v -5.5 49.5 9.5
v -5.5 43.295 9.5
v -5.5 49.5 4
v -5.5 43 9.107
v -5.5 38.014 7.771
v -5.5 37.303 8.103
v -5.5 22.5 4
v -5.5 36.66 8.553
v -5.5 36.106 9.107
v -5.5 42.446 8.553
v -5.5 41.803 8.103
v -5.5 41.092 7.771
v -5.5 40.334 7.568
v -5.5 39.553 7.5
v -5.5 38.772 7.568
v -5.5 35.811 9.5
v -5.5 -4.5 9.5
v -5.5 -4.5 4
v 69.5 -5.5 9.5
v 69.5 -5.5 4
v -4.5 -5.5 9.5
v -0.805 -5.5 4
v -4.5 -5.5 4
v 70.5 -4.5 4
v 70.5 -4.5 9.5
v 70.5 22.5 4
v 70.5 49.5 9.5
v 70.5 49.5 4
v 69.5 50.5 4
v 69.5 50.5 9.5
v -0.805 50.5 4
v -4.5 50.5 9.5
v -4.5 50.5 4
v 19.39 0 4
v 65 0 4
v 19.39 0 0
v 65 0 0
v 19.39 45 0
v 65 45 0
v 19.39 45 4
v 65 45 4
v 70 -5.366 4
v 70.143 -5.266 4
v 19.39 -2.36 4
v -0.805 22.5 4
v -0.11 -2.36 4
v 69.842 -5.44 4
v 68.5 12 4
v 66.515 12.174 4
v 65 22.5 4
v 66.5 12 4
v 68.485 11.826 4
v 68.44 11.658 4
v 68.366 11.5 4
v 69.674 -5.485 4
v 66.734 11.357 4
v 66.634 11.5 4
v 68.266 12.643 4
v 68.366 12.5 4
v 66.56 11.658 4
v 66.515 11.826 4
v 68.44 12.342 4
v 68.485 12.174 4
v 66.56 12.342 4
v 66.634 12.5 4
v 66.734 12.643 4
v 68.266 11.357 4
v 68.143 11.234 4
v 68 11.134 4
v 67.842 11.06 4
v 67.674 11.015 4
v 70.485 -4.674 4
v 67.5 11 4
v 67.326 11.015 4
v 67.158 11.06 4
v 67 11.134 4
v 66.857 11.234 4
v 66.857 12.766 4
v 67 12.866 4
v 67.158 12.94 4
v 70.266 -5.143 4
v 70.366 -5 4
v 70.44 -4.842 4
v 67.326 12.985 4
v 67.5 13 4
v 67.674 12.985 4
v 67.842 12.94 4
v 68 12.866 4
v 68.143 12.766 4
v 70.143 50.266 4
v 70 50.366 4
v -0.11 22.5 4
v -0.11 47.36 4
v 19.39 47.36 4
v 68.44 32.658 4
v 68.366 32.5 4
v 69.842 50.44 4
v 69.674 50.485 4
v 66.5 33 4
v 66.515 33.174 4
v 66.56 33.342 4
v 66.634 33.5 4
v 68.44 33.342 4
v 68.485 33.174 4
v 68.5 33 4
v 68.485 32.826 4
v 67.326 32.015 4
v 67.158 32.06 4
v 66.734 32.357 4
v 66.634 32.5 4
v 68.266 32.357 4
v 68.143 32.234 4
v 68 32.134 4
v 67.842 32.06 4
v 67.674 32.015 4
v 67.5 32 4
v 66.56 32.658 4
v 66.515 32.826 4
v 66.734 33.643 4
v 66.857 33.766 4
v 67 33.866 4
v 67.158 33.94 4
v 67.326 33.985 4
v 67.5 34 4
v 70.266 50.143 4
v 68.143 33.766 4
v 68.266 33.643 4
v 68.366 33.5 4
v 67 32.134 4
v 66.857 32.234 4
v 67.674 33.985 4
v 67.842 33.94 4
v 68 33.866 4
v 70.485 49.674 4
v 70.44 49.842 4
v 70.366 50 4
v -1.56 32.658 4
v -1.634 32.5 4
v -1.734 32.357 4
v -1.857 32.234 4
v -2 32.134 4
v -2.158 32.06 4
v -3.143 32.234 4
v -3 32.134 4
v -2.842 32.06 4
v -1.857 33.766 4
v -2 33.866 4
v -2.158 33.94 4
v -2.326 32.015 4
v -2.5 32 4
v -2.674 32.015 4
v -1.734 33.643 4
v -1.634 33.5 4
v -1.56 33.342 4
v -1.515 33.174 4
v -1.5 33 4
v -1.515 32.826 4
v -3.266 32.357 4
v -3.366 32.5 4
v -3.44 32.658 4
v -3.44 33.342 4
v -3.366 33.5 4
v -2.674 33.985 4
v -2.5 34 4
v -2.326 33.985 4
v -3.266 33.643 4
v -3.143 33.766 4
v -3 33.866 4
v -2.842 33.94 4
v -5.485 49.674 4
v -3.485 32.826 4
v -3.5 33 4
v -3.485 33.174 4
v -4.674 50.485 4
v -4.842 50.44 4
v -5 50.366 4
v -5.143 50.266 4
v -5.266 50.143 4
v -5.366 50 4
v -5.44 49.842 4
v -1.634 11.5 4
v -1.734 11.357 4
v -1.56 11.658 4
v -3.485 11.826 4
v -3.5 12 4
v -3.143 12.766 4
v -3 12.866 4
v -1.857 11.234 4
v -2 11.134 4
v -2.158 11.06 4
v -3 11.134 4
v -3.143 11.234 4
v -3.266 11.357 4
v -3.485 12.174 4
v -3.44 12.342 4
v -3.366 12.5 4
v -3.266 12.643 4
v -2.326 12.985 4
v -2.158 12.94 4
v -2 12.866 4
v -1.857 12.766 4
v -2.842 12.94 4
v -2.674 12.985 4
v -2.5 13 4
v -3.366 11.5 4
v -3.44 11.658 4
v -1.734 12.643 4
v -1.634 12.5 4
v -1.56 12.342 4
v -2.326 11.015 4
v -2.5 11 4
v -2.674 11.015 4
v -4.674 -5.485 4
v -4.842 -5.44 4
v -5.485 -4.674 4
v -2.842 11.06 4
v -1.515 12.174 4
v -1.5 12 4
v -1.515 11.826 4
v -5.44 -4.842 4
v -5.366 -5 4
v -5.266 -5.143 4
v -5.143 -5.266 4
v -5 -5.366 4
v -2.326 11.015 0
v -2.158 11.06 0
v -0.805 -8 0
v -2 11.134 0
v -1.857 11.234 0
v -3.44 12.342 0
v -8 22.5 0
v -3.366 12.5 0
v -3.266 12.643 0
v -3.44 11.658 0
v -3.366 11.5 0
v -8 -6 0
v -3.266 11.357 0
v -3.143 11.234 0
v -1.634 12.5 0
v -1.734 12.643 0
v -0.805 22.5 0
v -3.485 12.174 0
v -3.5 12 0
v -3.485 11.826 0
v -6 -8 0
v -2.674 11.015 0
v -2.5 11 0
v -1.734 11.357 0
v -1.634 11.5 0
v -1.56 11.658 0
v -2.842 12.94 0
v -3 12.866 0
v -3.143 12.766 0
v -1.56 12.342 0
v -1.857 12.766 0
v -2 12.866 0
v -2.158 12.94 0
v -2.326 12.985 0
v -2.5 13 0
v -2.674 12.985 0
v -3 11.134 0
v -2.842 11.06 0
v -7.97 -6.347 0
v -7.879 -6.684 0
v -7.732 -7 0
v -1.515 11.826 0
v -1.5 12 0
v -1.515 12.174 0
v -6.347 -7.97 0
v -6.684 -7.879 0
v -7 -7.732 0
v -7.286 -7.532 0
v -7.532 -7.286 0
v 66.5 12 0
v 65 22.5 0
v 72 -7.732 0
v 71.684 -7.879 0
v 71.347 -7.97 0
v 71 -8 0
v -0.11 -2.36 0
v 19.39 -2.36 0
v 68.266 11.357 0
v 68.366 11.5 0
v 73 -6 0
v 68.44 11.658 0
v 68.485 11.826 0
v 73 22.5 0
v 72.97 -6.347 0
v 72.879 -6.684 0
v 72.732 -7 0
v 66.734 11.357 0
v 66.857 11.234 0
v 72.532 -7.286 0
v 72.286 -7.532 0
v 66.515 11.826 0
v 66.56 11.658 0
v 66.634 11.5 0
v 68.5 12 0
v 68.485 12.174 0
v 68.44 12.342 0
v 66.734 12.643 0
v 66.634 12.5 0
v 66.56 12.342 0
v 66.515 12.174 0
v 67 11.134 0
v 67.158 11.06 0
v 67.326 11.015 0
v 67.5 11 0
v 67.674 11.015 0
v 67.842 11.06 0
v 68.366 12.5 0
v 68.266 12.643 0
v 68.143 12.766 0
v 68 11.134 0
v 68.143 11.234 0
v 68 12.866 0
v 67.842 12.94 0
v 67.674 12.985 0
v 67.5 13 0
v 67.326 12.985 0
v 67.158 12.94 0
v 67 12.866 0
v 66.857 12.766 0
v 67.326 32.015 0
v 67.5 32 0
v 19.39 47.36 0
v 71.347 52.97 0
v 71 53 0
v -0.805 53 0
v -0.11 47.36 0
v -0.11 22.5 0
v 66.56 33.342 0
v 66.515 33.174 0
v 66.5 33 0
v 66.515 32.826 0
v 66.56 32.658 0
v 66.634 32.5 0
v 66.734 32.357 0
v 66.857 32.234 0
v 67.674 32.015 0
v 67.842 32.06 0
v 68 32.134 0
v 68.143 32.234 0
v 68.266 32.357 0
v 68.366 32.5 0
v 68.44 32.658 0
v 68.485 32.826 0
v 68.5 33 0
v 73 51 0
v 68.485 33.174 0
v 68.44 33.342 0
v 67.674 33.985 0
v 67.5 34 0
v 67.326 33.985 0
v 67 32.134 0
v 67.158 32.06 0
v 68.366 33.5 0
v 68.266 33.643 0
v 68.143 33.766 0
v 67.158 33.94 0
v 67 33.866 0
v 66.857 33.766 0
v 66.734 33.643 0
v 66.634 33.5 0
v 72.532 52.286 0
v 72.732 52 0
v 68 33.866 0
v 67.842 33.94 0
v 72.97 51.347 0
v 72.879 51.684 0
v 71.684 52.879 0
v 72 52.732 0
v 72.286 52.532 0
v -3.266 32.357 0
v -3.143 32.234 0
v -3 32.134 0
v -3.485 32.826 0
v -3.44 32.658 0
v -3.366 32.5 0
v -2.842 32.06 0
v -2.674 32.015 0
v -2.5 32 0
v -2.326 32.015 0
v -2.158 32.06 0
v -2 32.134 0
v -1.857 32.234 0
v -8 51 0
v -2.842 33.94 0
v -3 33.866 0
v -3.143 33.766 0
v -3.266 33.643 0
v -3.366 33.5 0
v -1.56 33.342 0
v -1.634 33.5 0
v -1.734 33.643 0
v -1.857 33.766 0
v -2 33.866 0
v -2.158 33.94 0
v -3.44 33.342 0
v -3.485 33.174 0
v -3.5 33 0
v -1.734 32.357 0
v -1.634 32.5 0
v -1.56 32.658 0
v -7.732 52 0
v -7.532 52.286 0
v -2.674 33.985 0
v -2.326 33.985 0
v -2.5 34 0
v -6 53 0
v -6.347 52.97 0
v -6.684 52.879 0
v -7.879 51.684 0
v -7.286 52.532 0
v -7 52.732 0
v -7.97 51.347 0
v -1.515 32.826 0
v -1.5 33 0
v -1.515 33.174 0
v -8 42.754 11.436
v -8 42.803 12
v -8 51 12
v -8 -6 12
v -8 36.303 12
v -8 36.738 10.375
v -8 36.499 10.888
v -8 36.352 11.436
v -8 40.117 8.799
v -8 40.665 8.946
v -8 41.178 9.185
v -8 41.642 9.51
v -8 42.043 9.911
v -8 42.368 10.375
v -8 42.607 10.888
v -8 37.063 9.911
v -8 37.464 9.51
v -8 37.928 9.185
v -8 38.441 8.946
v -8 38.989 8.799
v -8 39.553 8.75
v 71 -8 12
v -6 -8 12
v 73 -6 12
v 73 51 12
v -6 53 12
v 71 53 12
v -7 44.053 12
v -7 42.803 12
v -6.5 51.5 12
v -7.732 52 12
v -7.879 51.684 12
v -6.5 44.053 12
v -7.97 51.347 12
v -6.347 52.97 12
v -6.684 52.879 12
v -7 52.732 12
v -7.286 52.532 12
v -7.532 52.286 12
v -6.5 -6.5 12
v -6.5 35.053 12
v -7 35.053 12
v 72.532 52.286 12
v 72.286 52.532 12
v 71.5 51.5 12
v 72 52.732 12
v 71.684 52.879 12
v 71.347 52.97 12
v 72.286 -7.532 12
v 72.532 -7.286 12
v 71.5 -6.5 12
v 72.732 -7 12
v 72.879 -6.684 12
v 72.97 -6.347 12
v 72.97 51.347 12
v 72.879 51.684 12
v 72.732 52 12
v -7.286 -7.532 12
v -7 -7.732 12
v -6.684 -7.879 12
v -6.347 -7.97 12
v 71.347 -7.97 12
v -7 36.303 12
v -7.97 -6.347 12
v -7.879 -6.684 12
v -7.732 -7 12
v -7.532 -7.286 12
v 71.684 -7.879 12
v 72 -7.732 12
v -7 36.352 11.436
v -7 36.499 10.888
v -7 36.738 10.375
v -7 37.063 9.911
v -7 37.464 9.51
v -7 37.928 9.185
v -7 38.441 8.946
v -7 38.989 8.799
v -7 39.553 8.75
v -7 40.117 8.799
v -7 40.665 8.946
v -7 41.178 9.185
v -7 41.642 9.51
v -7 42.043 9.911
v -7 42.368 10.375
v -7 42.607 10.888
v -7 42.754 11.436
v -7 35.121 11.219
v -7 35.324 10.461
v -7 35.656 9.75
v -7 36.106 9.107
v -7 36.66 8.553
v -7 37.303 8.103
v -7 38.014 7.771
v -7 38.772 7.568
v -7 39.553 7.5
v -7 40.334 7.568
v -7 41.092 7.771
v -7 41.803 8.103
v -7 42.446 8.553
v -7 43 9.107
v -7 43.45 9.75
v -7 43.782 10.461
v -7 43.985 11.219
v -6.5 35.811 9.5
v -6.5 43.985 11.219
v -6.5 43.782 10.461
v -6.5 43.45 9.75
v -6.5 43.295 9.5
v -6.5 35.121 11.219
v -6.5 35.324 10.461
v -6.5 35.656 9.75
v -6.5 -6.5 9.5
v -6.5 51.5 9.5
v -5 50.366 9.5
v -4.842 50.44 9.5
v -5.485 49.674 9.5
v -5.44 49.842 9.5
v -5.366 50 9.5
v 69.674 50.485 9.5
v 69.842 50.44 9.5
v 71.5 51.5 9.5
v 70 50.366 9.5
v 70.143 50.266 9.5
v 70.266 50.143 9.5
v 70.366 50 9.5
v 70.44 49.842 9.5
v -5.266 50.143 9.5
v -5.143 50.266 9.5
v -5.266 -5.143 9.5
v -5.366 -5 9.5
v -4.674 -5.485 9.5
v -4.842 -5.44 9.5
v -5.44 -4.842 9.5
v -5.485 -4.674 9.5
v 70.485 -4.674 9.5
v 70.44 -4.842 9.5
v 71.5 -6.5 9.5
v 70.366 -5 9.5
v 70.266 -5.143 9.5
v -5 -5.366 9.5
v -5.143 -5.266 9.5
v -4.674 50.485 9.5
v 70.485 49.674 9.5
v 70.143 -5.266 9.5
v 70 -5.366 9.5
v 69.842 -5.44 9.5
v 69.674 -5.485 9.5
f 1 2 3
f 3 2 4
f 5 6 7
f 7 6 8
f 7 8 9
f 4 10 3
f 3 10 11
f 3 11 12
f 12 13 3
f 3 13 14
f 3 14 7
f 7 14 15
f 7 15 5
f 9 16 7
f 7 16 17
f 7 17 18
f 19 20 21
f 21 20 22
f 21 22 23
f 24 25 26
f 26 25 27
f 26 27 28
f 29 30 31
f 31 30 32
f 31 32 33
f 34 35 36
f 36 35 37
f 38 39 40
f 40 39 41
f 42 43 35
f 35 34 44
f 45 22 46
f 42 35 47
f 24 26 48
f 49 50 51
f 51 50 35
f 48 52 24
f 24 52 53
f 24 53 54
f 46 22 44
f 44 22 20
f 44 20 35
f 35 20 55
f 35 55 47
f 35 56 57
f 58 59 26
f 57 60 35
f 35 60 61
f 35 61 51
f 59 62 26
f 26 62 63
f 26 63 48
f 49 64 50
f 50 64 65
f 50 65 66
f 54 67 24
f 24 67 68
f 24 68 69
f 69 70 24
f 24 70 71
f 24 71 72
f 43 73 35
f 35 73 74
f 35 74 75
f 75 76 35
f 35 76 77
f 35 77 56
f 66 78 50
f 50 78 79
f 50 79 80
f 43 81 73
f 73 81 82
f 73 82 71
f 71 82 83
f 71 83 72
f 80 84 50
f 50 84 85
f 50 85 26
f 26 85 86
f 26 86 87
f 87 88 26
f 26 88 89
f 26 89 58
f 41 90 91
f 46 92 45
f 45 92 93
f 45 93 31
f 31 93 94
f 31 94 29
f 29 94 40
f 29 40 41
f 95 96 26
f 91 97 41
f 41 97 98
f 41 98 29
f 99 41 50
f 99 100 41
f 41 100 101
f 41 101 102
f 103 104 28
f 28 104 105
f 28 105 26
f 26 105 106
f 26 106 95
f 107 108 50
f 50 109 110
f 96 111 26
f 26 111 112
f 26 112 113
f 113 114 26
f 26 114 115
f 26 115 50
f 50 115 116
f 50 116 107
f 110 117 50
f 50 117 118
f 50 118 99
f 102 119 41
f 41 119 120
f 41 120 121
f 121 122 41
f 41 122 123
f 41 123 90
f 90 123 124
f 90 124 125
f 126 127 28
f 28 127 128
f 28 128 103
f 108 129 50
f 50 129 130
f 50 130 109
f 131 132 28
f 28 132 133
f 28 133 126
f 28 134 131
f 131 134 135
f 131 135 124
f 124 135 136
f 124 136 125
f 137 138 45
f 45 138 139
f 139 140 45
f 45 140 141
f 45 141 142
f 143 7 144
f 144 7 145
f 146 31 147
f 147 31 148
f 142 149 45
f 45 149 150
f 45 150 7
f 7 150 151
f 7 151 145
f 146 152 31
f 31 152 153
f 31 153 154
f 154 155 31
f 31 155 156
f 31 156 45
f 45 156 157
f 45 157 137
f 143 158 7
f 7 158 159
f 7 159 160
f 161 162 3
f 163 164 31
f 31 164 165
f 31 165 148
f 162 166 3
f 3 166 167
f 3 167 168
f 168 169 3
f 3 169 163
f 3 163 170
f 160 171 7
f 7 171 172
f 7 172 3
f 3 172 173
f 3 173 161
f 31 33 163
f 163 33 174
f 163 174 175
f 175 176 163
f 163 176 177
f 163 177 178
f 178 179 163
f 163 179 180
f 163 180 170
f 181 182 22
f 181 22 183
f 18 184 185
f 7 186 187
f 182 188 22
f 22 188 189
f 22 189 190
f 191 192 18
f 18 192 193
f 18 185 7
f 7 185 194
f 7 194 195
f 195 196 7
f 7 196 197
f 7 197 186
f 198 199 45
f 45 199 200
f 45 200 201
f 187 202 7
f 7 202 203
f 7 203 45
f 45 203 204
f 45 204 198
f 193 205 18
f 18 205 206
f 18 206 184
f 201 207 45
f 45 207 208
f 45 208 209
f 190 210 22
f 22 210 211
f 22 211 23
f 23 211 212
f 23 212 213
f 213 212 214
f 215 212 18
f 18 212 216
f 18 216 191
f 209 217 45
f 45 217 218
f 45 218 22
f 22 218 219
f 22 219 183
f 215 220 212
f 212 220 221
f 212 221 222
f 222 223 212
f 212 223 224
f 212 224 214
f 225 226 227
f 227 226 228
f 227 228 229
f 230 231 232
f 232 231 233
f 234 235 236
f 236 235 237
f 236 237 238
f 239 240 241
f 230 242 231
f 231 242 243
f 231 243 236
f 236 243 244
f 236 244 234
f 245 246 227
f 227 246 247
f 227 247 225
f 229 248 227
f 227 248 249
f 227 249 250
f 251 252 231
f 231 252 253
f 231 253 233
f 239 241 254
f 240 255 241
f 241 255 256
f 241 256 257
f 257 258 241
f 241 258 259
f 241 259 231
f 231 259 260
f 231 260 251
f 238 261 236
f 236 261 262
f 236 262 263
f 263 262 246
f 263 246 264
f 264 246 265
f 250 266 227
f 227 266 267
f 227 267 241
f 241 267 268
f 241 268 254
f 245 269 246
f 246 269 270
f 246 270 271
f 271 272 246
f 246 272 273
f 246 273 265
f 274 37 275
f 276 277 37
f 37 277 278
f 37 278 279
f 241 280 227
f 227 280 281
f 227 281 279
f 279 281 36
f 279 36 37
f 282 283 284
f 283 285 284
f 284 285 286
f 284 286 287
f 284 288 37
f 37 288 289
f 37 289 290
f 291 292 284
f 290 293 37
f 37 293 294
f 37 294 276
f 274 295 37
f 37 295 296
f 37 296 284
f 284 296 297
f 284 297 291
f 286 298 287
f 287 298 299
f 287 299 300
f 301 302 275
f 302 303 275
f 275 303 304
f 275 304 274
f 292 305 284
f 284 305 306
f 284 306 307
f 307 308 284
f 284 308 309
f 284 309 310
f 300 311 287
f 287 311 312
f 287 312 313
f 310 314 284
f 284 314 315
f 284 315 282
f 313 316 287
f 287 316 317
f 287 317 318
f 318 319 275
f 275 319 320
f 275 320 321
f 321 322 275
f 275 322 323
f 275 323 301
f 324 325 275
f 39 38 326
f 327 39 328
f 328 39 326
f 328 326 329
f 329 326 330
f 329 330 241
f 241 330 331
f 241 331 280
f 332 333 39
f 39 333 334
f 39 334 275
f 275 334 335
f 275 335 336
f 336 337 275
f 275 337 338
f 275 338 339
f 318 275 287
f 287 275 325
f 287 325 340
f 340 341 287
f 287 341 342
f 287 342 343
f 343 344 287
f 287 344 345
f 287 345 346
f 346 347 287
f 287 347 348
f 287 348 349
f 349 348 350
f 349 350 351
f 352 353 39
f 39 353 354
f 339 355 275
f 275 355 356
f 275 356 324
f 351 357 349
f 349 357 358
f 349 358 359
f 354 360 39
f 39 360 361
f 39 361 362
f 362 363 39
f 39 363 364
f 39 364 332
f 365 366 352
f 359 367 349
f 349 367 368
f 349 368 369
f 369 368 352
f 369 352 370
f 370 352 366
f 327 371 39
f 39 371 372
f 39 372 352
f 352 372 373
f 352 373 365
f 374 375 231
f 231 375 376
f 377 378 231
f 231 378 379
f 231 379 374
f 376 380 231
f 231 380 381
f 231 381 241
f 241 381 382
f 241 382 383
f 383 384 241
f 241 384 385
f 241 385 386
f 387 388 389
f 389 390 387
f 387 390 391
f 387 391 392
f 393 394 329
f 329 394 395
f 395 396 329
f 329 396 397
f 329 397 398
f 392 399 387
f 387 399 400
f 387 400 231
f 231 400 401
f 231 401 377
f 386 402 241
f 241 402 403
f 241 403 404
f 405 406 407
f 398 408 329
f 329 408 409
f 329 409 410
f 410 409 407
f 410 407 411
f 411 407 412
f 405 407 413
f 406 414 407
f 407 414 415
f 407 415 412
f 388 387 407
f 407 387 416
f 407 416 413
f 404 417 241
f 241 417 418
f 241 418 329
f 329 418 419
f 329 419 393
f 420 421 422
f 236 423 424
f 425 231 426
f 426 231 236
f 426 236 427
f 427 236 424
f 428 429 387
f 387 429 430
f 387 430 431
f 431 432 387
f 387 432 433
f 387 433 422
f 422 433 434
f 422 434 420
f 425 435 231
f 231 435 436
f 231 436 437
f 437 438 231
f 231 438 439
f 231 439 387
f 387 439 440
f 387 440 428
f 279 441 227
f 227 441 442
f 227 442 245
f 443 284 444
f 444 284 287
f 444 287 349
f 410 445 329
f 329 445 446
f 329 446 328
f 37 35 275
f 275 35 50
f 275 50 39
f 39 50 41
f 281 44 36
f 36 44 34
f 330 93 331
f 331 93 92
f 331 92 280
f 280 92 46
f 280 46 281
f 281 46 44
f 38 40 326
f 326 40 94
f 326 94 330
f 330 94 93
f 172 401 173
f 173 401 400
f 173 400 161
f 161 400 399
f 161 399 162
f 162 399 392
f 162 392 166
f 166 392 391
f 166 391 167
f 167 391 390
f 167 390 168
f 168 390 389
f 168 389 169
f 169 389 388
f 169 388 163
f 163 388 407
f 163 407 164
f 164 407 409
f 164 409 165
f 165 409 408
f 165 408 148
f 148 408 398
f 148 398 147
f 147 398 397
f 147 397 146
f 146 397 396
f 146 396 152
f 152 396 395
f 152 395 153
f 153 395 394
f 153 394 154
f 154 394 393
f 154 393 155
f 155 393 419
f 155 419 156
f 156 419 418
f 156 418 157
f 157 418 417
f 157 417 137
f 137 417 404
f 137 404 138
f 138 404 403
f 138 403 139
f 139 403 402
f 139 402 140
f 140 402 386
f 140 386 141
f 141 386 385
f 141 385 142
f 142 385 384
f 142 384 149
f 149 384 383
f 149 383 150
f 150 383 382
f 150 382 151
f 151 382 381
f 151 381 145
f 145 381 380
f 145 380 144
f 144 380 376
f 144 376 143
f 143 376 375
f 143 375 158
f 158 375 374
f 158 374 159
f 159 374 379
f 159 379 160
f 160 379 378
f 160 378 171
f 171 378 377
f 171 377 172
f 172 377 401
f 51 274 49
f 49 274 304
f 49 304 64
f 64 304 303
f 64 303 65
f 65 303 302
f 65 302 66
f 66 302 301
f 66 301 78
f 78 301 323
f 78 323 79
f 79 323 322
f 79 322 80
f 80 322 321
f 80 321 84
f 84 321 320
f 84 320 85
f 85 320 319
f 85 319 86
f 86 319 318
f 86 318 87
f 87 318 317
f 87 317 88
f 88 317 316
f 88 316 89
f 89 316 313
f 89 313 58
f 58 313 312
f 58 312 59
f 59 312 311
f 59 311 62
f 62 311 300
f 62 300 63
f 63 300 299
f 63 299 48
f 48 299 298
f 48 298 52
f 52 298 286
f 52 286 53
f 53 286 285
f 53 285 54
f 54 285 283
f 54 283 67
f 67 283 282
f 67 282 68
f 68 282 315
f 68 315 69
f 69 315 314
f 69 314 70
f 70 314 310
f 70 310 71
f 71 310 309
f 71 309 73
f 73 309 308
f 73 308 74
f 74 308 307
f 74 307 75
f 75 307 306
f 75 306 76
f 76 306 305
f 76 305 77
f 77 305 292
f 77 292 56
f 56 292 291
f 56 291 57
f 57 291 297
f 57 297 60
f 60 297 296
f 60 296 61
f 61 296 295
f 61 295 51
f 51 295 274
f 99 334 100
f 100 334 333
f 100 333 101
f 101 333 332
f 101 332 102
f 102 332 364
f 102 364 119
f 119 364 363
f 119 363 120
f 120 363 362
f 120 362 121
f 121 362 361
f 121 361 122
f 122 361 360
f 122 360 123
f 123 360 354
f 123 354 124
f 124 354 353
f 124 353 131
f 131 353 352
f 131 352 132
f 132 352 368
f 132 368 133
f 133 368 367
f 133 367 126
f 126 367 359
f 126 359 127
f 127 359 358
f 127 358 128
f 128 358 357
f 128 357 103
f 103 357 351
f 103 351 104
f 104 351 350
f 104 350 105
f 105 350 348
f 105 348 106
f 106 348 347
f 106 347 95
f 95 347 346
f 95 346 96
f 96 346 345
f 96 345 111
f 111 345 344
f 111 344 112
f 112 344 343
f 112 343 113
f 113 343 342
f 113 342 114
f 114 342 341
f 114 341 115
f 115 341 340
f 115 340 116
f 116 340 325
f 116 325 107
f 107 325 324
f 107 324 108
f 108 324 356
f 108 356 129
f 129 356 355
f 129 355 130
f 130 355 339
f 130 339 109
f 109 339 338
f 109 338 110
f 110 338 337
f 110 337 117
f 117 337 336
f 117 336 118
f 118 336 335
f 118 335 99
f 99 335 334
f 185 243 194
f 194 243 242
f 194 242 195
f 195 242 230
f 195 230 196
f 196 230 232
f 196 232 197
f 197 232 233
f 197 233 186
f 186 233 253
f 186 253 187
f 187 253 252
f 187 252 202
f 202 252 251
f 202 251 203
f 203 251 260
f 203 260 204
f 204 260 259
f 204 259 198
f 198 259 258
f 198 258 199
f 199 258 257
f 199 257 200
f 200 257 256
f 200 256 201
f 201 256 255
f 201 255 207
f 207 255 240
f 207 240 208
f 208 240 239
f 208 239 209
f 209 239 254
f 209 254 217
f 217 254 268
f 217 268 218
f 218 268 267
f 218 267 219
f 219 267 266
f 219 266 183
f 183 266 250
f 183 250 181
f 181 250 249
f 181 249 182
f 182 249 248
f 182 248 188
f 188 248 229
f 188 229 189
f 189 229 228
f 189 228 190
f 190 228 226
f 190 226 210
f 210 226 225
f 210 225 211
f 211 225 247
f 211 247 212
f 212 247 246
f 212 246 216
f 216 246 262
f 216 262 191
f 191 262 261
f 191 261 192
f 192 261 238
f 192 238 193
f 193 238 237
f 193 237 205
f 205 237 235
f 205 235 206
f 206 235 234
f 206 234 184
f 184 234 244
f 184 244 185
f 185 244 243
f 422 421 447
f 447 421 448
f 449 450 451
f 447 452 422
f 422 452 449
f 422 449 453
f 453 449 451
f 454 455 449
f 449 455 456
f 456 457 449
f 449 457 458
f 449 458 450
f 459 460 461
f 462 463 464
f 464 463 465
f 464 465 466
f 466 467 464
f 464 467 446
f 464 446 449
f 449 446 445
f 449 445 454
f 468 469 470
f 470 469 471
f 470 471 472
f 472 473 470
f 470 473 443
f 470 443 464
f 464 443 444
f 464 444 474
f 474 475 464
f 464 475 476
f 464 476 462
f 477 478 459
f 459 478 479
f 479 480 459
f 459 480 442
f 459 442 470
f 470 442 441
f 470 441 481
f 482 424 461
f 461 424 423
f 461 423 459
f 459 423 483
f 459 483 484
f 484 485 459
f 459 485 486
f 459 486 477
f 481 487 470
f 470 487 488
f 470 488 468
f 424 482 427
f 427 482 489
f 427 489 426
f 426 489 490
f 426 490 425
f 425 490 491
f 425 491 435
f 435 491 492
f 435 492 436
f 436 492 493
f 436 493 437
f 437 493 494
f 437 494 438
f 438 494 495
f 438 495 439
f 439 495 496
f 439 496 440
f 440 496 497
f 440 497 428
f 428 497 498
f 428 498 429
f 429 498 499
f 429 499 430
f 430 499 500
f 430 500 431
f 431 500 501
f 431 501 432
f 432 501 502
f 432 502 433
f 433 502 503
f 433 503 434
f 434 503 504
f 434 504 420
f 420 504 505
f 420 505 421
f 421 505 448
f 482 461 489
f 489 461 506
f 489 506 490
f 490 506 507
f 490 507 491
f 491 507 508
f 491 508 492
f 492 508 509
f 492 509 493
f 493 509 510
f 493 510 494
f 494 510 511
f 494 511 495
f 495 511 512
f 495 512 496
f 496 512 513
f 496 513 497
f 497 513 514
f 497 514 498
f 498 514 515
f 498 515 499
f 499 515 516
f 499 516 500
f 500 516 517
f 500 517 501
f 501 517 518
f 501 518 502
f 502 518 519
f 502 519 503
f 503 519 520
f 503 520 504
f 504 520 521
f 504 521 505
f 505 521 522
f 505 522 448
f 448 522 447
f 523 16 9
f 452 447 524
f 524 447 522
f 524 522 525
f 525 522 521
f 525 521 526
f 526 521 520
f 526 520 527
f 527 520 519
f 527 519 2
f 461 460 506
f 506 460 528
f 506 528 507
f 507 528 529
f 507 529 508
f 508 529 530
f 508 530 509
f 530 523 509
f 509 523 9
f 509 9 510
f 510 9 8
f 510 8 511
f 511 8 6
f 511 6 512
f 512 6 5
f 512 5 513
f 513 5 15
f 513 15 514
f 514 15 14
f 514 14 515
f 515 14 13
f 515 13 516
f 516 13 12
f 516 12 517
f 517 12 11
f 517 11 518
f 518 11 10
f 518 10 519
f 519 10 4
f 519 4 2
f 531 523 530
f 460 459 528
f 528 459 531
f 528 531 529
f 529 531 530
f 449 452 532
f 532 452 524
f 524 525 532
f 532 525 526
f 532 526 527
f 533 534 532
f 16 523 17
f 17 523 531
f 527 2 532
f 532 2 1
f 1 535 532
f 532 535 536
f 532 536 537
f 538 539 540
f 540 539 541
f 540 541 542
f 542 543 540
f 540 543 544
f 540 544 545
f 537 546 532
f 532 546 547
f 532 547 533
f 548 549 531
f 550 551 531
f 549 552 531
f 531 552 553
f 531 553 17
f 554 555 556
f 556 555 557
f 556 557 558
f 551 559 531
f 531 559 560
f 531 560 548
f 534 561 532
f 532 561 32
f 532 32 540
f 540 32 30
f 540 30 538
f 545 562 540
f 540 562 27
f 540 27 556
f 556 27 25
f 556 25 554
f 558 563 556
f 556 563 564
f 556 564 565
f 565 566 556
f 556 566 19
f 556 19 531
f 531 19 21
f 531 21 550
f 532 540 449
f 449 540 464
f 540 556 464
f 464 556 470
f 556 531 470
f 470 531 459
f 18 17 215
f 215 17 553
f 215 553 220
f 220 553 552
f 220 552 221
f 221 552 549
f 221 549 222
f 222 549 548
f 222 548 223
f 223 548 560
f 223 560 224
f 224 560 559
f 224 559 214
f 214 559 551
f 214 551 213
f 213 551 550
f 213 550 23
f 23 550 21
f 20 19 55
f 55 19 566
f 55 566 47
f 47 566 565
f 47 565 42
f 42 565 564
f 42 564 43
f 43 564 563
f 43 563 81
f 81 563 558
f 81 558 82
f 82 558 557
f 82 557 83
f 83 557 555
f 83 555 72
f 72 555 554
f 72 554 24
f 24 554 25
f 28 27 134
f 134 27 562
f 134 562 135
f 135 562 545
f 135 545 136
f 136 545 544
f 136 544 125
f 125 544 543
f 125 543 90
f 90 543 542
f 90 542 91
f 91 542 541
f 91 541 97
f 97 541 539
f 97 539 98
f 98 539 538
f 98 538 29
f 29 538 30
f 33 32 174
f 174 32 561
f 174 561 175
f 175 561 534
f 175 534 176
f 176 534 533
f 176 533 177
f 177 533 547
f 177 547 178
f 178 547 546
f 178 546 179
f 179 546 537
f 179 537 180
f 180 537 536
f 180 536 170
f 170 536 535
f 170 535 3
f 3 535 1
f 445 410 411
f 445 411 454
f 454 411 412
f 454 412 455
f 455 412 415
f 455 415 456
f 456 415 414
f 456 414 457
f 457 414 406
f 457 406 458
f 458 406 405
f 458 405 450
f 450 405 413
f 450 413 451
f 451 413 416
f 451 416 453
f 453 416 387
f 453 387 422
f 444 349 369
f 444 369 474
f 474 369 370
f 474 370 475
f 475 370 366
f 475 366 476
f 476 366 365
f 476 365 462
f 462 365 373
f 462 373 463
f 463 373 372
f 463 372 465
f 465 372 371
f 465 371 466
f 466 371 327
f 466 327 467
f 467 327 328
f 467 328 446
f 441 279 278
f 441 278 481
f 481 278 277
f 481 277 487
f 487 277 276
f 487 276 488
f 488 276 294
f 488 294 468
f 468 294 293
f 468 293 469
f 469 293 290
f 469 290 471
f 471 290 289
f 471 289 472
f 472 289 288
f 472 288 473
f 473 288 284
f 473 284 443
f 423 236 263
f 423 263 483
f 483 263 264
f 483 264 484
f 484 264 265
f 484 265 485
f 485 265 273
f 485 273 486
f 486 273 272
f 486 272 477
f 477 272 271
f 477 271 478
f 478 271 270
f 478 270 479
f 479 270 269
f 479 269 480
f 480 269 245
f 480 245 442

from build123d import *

# Parameters (mm, degrees)
ESQUISSE1_W                     = 81
ESQUISSE1_H                     = 61
ESQUISSE1_W_2                   = 65
ESQUISSE1_H_2                   = 45
EXTRU_MINCE1_DEPTH              = 4
ESQUISSE3_R                     = 1
ENL_V_MAT_EXTRU_1_DEPTH         = 13
ESQUISSE4_W                     = 81
ESQUISSE4_H                     = 61
ESQUISSE4_W_2                   = 76
ESQUISSE4_H_2                   = 56
EXTRU_MINCE2_DEPTH              = 12
ENL_V_MAT_EXTRU_5_DEPTH         = 11.5
ENL_V_MAT_EXTRU_4_DEPTH         = 1.5
ESQUISSE9_W                     = 78
ESQUISSE9_H                     = 58
ESQUISSE9_W_2                   = 76
ESQUISSE9_H_2                   = 56
ENL_V_DE_MAT_EXTRU_MINCE1_DEPTH = 2.5
CONG_4_R                        = 1
CONG_5_R                        = 2


with BuildPart() as part:
    # Esquisse1 → Extru.-Mince1 (new body)
    with BuildSketch(Plane.XY):
        with Locations((32.5, 22.5)):
            Rectangle(ESQUISSE1_W, ESQUISSE1_H)
        with Locations((32.5, 22.5)):
            Rectangle(ESQUISSE1_W_2, ESQUISSE1_H_2, mode=Mode.SUBTRACT)
    extrude(amount=EXTRU_MINCE1_DEPTH)

    # Esquisse3 → Enlèv. mat.-Extru.1 (cut)
    with BuildSketch(Plane.XY):
        with Locations((-2.5, 33)):
            Circle(ESQUISSE3_R)
        with Locations((-2.5, 12)):
            Circle(ESQUISSE3_R)
        with Locations((67.5, 33)):
            Circle(ESQUISSE3_R)
        with Locations((67.5, 12)):
            Circle(ESQUISSE3_R)
        Polygon((-0.11, 47.36), (19.39, 47.36), (19.39, 43.36), (19.39, 1.64), (19.39, -2.36), (-0.11, -2.36), (-0.11, 1.64), (-0.11, 43.36), align=None)
    extrude(amount=ENL_V_MAT_EXTRU_1_DEPTH, mode=Mode.SUBTRACT)

    # Esquisse4 → Extru.-Mince2 (add)
    with BuildSketch(Plane.XY):
        with Locations((32.5, 22.5)):
            Rectangle(ESQUISSE4_W, ESQUISSE4_H)
        with Locations((32.5, 22.5)):
            Rectangle(ESQUISSE4_W_2, ESQUISSE4_H_2, mode=Mode.SUBTRACT)
    extrude(amount=EXTRU_MINCE2_DEPTH)

    # Esquisse7 → Enlèv. mat.-Extru.5 (cut)
    with BuildSketch(Plane(origin=(-5.5, 0, 0), x_dir=(0, 0, -1), z_dir=(1, 0, 0))):
        with BuildLine():
            Line((-12, 42.802969616), (-12, 36.302969616))
            ThreePointArc((-12, 36.302969616), (-8.75, 39.552969616), (-12, 42.802969616))
        make_face()
    extrude(amount=-ENL_V_MAT_EXTRU_5_DEPTH, mode=Mode.SUBTRACT)

    # Esquisse6 → Enlèv. mat.-Extru.4 (cut)
    with BuildSketch(Plane(origin=(-5.5, 0, 0), x_dir=(0, 0, -1), z_dir=(1, 0, 0))):
        with BuildLine():
            Line((-12, 44.052969616), (-12, 35.052969616))
            ThreePointArc((-12, 35.052969616), (-7.5, 39.552969616), (-12, 44.052969616))
        make_face()
    extrude(amount=-ENL_V_MAT_EXTRU_4_DEPTH, mode=Mode.SUBTRACT)

    # Esquisse9 → Enlèv. de mat.-Extru.-Mince1 (cut)
    with BuildSketch(Plane.XY.offset(12)):
        with Locations((32.5, 22.5)):
            Rectangle(ESQUISSE9_W, ESQUISSE9_H)
        with Locations((32.5, 22.5)):
            Rectangle(ESQUISSE9_W_2, ESQUISSE9_H_2, mode=Mode.SUBTRACT)
    extrude(amount=-ENL_V_DE_MAT_EXTRU_MINCE1_DEPTH, mode=Mode.SUBTRACT)

    # Congé4
    cong_4_edges = [part.edges().sort_by_distance(p)[0] for p in [
        (-5.5, 50.5, 6.75),
        (70.5, 50.5, 6.75),
        (70.5, -5.5, 6.75),
        (-5.5, -5.5, 6.75),
    ]]
    fillet(cong_4_edges, radius=CONG_4_R)

    # Congé5
    cong_5_edges = [part.edges().sort_by_distance(p)[0] for p in [
        (-8, 53, 6),
        (73, 53, 6),
        (73, -8, 6),
        (-8, -8, 6),
    ]]
    fillet(cong_5_edges, radius=CONG_5_R)


solid = part.part
